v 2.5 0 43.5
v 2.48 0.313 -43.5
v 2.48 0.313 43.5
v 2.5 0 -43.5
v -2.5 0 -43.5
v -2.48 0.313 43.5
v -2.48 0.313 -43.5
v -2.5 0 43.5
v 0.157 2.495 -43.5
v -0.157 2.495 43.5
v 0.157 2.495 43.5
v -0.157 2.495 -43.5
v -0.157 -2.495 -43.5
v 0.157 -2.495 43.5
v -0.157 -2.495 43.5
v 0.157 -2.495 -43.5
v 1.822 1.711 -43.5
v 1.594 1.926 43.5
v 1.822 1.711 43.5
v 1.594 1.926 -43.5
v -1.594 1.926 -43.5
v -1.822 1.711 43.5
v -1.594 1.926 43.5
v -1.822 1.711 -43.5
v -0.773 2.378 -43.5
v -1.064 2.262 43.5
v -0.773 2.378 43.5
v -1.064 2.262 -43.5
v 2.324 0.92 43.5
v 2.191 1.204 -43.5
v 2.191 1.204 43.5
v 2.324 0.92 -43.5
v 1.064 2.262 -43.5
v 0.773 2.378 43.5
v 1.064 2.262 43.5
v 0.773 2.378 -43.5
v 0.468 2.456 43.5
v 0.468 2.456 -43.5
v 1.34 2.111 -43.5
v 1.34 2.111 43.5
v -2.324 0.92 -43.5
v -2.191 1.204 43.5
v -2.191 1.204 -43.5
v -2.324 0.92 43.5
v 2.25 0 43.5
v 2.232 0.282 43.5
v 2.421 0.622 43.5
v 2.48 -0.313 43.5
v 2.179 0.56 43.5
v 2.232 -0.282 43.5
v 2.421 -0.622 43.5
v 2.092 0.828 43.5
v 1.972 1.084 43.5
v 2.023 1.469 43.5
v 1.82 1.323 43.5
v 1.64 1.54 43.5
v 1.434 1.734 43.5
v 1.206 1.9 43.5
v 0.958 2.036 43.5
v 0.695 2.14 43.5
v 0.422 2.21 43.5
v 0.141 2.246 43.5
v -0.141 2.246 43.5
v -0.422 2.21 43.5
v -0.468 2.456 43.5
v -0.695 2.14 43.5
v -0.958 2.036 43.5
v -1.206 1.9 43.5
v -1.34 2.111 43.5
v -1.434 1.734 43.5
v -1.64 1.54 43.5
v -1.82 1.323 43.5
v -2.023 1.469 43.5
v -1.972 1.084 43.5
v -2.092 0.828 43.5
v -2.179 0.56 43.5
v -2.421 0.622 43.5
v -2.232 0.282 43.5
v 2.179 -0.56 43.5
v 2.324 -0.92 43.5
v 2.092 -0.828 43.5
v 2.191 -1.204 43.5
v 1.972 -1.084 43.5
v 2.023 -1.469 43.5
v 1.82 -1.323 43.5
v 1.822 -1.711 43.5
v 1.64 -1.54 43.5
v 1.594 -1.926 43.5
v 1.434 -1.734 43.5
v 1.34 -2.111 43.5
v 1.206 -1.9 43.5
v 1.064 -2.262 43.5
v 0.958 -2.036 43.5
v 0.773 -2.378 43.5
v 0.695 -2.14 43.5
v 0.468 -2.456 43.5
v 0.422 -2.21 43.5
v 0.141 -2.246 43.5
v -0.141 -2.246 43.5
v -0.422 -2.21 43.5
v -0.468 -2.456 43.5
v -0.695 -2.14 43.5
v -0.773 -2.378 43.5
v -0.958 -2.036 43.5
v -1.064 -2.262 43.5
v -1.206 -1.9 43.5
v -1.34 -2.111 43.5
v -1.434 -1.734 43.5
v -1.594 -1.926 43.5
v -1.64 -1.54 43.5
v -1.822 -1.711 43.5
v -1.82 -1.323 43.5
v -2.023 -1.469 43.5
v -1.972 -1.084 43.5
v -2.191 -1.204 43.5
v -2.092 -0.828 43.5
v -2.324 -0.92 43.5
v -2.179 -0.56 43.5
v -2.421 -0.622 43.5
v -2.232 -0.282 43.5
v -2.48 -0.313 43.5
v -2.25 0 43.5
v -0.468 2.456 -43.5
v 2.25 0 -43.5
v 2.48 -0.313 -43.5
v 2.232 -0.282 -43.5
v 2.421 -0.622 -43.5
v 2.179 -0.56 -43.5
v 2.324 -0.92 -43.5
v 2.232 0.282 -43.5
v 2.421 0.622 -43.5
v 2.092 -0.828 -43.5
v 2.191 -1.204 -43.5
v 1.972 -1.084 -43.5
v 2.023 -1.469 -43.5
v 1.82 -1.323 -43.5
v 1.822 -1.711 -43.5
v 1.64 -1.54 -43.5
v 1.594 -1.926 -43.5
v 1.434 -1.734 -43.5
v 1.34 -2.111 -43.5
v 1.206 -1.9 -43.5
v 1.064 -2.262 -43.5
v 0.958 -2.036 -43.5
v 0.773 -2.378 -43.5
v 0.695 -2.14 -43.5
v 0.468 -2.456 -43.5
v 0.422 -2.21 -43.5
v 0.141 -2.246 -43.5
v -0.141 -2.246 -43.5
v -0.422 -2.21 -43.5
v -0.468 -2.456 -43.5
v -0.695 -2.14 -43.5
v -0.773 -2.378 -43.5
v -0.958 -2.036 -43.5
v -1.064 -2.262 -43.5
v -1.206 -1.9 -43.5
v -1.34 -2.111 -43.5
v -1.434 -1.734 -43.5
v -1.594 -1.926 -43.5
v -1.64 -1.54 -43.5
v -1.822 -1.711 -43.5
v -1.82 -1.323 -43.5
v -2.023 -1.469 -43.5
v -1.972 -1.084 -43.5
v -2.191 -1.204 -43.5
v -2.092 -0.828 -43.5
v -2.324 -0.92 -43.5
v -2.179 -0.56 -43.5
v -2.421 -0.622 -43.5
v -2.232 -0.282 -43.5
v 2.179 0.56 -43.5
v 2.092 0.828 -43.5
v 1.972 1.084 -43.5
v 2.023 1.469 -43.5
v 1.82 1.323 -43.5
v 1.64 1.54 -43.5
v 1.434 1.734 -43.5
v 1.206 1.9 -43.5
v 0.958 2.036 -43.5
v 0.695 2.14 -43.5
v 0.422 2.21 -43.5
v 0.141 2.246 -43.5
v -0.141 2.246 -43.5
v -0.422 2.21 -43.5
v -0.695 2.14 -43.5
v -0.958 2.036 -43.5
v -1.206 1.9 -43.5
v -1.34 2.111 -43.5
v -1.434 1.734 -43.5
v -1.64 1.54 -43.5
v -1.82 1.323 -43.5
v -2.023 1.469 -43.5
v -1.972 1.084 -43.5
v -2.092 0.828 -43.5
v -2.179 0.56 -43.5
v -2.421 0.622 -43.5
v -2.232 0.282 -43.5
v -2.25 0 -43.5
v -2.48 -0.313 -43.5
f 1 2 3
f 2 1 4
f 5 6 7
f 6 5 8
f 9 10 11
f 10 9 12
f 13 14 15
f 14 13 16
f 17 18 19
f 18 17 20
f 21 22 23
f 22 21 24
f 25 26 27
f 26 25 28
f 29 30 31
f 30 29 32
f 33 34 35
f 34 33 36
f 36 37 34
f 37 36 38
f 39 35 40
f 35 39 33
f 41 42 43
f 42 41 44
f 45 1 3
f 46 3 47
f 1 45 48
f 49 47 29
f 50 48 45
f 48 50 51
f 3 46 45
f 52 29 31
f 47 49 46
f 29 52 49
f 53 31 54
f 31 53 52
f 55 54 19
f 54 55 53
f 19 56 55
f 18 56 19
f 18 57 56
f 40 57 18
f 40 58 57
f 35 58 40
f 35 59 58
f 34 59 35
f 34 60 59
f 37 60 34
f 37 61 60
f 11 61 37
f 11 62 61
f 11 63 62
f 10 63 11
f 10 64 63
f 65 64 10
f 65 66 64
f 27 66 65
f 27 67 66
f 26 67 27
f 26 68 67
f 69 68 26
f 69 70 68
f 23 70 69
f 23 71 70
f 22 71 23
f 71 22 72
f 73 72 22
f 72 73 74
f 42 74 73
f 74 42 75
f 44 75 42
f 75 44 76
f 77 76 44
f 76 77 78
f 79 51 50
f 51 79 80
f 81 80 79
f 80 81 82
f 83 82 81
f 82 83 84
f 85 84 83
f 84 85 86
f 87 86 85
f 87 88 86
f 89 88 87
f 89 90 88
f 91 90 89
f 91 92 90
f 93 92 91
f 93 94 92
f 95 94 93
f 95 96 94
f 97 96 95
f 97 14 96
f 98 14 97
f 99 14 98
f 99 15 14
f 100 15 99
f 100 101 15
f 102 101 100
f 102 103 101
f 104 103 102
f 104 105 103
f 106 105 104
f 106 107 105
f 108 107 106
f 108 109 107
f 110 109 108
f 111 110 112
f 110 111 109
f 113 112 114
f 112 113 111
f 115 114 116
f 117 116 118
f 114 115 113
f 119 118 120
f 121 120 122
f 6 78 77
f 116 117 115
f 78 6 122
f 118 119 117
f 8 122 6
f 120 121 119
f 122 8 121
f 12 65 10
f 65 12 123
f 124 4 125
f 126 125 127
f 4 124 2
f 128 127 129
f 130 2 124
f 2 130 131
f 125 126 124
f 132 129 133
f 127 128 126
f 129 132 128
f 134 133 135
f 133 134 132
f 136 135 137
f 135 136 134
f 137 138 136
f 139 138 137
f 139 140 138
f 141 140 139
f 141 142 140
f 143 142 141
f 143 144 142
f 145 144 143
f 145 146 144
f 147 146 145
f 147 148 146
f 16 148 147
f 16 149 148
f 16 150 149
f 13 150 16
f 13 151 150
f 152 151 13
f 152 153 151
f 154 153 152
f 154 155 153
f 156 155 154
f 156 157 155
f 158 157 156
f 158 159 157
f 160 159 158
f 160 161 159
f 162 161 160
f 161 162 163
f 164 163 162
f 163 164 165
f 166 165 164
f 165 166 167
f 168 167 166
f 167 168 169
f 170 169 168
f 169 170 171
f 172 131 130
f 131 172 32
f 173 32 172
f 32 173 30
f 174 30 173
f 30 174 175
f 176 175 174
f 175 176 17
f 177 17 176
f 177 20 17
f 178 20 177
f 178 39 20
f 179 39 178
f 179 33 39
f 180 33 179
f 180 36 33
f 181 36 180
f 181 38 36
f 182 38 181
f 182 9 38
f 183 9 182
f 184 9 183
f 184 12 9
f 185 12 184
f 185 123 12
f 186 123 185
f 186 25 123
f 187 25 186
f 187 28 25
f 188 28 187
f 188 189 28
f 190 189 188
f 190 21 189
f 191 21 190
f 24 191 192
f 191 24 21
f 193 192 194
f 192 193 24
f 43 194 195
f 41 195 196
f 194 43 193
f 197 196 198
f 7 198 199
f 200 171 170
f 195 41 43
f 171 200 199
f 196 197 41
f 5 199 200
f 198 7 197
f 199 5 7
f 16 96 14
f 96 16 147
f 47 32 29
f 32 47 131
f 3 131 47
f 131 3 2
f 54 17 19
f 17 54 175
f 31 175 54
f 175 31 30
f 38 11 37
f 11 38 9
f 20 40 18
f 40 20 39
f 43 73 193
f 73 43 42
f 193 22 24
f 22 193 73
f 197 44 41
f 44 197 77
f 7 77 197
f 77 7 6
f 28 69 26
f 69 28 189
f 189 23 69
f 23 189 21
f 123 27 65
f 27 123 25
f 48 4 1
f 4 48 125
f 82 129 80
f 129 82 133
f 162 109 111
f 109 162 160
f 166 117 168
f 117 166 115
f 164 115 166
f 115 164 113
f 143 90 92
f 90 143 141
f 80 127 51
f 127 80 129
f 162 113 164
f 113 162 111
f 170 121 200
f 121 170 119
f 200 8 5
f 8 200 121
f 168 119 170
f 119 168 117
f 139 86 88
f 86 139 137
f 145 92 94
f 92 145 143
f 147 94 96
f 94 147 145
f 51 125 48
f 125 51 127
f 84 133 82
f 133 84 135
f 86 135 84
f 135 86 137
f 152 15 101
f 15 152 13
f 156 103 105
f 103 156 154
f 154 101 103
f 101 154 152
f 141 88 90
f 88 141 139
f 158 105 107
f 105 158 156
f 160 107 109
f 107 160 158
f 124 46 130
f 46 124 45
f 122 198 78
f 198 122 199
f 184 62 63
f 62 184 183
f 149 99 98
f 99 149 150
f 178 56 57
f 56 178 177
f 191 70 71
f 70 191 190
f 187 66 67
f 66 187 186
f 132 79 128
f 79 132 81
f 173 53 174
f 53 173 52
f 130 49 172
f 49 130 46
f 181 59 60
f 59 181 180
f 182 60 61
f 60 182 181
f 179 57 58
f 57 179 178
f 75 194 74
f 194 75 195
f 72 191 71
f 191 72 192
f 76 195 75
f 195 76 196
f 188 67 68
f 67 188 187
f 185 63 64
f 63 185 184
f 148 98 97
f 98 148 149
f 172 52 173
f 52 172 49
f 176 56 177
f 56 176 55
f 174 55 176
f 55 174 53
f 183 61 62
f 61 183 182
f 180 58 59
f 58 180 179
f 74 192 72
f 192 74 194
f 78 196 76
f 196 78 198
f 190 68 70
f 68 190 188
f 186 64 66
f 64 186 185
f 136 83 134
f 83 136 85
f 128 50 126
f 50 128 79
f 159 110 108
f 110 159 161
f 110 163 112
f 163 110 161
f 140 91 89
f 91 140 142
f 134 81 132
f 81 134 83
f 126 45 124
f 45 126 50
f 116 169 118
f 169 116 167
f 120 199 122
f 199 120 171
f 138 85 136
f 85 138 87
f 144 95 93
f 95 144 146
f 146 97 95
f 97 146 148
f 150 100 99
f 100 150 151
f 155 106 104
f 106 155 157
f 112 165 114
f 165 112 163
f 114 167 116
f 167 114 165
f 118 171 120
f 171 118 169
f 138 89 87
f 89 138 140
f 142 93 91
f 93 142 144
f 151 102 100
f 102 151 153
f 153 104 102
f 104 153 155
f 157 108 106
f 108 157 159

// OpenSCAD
$fn = 50;


difference() {
	union() {
		translate(v = [0, 0, -43.5000000000]) {
			cylinder(h = 87, r = 2.5000000000);
		}
	}
	union() {
		translate(v = [0, 0, -100.0000000000]) {
			cylinder(h = 200, r = 2.2500000000);
		}
	}
}
